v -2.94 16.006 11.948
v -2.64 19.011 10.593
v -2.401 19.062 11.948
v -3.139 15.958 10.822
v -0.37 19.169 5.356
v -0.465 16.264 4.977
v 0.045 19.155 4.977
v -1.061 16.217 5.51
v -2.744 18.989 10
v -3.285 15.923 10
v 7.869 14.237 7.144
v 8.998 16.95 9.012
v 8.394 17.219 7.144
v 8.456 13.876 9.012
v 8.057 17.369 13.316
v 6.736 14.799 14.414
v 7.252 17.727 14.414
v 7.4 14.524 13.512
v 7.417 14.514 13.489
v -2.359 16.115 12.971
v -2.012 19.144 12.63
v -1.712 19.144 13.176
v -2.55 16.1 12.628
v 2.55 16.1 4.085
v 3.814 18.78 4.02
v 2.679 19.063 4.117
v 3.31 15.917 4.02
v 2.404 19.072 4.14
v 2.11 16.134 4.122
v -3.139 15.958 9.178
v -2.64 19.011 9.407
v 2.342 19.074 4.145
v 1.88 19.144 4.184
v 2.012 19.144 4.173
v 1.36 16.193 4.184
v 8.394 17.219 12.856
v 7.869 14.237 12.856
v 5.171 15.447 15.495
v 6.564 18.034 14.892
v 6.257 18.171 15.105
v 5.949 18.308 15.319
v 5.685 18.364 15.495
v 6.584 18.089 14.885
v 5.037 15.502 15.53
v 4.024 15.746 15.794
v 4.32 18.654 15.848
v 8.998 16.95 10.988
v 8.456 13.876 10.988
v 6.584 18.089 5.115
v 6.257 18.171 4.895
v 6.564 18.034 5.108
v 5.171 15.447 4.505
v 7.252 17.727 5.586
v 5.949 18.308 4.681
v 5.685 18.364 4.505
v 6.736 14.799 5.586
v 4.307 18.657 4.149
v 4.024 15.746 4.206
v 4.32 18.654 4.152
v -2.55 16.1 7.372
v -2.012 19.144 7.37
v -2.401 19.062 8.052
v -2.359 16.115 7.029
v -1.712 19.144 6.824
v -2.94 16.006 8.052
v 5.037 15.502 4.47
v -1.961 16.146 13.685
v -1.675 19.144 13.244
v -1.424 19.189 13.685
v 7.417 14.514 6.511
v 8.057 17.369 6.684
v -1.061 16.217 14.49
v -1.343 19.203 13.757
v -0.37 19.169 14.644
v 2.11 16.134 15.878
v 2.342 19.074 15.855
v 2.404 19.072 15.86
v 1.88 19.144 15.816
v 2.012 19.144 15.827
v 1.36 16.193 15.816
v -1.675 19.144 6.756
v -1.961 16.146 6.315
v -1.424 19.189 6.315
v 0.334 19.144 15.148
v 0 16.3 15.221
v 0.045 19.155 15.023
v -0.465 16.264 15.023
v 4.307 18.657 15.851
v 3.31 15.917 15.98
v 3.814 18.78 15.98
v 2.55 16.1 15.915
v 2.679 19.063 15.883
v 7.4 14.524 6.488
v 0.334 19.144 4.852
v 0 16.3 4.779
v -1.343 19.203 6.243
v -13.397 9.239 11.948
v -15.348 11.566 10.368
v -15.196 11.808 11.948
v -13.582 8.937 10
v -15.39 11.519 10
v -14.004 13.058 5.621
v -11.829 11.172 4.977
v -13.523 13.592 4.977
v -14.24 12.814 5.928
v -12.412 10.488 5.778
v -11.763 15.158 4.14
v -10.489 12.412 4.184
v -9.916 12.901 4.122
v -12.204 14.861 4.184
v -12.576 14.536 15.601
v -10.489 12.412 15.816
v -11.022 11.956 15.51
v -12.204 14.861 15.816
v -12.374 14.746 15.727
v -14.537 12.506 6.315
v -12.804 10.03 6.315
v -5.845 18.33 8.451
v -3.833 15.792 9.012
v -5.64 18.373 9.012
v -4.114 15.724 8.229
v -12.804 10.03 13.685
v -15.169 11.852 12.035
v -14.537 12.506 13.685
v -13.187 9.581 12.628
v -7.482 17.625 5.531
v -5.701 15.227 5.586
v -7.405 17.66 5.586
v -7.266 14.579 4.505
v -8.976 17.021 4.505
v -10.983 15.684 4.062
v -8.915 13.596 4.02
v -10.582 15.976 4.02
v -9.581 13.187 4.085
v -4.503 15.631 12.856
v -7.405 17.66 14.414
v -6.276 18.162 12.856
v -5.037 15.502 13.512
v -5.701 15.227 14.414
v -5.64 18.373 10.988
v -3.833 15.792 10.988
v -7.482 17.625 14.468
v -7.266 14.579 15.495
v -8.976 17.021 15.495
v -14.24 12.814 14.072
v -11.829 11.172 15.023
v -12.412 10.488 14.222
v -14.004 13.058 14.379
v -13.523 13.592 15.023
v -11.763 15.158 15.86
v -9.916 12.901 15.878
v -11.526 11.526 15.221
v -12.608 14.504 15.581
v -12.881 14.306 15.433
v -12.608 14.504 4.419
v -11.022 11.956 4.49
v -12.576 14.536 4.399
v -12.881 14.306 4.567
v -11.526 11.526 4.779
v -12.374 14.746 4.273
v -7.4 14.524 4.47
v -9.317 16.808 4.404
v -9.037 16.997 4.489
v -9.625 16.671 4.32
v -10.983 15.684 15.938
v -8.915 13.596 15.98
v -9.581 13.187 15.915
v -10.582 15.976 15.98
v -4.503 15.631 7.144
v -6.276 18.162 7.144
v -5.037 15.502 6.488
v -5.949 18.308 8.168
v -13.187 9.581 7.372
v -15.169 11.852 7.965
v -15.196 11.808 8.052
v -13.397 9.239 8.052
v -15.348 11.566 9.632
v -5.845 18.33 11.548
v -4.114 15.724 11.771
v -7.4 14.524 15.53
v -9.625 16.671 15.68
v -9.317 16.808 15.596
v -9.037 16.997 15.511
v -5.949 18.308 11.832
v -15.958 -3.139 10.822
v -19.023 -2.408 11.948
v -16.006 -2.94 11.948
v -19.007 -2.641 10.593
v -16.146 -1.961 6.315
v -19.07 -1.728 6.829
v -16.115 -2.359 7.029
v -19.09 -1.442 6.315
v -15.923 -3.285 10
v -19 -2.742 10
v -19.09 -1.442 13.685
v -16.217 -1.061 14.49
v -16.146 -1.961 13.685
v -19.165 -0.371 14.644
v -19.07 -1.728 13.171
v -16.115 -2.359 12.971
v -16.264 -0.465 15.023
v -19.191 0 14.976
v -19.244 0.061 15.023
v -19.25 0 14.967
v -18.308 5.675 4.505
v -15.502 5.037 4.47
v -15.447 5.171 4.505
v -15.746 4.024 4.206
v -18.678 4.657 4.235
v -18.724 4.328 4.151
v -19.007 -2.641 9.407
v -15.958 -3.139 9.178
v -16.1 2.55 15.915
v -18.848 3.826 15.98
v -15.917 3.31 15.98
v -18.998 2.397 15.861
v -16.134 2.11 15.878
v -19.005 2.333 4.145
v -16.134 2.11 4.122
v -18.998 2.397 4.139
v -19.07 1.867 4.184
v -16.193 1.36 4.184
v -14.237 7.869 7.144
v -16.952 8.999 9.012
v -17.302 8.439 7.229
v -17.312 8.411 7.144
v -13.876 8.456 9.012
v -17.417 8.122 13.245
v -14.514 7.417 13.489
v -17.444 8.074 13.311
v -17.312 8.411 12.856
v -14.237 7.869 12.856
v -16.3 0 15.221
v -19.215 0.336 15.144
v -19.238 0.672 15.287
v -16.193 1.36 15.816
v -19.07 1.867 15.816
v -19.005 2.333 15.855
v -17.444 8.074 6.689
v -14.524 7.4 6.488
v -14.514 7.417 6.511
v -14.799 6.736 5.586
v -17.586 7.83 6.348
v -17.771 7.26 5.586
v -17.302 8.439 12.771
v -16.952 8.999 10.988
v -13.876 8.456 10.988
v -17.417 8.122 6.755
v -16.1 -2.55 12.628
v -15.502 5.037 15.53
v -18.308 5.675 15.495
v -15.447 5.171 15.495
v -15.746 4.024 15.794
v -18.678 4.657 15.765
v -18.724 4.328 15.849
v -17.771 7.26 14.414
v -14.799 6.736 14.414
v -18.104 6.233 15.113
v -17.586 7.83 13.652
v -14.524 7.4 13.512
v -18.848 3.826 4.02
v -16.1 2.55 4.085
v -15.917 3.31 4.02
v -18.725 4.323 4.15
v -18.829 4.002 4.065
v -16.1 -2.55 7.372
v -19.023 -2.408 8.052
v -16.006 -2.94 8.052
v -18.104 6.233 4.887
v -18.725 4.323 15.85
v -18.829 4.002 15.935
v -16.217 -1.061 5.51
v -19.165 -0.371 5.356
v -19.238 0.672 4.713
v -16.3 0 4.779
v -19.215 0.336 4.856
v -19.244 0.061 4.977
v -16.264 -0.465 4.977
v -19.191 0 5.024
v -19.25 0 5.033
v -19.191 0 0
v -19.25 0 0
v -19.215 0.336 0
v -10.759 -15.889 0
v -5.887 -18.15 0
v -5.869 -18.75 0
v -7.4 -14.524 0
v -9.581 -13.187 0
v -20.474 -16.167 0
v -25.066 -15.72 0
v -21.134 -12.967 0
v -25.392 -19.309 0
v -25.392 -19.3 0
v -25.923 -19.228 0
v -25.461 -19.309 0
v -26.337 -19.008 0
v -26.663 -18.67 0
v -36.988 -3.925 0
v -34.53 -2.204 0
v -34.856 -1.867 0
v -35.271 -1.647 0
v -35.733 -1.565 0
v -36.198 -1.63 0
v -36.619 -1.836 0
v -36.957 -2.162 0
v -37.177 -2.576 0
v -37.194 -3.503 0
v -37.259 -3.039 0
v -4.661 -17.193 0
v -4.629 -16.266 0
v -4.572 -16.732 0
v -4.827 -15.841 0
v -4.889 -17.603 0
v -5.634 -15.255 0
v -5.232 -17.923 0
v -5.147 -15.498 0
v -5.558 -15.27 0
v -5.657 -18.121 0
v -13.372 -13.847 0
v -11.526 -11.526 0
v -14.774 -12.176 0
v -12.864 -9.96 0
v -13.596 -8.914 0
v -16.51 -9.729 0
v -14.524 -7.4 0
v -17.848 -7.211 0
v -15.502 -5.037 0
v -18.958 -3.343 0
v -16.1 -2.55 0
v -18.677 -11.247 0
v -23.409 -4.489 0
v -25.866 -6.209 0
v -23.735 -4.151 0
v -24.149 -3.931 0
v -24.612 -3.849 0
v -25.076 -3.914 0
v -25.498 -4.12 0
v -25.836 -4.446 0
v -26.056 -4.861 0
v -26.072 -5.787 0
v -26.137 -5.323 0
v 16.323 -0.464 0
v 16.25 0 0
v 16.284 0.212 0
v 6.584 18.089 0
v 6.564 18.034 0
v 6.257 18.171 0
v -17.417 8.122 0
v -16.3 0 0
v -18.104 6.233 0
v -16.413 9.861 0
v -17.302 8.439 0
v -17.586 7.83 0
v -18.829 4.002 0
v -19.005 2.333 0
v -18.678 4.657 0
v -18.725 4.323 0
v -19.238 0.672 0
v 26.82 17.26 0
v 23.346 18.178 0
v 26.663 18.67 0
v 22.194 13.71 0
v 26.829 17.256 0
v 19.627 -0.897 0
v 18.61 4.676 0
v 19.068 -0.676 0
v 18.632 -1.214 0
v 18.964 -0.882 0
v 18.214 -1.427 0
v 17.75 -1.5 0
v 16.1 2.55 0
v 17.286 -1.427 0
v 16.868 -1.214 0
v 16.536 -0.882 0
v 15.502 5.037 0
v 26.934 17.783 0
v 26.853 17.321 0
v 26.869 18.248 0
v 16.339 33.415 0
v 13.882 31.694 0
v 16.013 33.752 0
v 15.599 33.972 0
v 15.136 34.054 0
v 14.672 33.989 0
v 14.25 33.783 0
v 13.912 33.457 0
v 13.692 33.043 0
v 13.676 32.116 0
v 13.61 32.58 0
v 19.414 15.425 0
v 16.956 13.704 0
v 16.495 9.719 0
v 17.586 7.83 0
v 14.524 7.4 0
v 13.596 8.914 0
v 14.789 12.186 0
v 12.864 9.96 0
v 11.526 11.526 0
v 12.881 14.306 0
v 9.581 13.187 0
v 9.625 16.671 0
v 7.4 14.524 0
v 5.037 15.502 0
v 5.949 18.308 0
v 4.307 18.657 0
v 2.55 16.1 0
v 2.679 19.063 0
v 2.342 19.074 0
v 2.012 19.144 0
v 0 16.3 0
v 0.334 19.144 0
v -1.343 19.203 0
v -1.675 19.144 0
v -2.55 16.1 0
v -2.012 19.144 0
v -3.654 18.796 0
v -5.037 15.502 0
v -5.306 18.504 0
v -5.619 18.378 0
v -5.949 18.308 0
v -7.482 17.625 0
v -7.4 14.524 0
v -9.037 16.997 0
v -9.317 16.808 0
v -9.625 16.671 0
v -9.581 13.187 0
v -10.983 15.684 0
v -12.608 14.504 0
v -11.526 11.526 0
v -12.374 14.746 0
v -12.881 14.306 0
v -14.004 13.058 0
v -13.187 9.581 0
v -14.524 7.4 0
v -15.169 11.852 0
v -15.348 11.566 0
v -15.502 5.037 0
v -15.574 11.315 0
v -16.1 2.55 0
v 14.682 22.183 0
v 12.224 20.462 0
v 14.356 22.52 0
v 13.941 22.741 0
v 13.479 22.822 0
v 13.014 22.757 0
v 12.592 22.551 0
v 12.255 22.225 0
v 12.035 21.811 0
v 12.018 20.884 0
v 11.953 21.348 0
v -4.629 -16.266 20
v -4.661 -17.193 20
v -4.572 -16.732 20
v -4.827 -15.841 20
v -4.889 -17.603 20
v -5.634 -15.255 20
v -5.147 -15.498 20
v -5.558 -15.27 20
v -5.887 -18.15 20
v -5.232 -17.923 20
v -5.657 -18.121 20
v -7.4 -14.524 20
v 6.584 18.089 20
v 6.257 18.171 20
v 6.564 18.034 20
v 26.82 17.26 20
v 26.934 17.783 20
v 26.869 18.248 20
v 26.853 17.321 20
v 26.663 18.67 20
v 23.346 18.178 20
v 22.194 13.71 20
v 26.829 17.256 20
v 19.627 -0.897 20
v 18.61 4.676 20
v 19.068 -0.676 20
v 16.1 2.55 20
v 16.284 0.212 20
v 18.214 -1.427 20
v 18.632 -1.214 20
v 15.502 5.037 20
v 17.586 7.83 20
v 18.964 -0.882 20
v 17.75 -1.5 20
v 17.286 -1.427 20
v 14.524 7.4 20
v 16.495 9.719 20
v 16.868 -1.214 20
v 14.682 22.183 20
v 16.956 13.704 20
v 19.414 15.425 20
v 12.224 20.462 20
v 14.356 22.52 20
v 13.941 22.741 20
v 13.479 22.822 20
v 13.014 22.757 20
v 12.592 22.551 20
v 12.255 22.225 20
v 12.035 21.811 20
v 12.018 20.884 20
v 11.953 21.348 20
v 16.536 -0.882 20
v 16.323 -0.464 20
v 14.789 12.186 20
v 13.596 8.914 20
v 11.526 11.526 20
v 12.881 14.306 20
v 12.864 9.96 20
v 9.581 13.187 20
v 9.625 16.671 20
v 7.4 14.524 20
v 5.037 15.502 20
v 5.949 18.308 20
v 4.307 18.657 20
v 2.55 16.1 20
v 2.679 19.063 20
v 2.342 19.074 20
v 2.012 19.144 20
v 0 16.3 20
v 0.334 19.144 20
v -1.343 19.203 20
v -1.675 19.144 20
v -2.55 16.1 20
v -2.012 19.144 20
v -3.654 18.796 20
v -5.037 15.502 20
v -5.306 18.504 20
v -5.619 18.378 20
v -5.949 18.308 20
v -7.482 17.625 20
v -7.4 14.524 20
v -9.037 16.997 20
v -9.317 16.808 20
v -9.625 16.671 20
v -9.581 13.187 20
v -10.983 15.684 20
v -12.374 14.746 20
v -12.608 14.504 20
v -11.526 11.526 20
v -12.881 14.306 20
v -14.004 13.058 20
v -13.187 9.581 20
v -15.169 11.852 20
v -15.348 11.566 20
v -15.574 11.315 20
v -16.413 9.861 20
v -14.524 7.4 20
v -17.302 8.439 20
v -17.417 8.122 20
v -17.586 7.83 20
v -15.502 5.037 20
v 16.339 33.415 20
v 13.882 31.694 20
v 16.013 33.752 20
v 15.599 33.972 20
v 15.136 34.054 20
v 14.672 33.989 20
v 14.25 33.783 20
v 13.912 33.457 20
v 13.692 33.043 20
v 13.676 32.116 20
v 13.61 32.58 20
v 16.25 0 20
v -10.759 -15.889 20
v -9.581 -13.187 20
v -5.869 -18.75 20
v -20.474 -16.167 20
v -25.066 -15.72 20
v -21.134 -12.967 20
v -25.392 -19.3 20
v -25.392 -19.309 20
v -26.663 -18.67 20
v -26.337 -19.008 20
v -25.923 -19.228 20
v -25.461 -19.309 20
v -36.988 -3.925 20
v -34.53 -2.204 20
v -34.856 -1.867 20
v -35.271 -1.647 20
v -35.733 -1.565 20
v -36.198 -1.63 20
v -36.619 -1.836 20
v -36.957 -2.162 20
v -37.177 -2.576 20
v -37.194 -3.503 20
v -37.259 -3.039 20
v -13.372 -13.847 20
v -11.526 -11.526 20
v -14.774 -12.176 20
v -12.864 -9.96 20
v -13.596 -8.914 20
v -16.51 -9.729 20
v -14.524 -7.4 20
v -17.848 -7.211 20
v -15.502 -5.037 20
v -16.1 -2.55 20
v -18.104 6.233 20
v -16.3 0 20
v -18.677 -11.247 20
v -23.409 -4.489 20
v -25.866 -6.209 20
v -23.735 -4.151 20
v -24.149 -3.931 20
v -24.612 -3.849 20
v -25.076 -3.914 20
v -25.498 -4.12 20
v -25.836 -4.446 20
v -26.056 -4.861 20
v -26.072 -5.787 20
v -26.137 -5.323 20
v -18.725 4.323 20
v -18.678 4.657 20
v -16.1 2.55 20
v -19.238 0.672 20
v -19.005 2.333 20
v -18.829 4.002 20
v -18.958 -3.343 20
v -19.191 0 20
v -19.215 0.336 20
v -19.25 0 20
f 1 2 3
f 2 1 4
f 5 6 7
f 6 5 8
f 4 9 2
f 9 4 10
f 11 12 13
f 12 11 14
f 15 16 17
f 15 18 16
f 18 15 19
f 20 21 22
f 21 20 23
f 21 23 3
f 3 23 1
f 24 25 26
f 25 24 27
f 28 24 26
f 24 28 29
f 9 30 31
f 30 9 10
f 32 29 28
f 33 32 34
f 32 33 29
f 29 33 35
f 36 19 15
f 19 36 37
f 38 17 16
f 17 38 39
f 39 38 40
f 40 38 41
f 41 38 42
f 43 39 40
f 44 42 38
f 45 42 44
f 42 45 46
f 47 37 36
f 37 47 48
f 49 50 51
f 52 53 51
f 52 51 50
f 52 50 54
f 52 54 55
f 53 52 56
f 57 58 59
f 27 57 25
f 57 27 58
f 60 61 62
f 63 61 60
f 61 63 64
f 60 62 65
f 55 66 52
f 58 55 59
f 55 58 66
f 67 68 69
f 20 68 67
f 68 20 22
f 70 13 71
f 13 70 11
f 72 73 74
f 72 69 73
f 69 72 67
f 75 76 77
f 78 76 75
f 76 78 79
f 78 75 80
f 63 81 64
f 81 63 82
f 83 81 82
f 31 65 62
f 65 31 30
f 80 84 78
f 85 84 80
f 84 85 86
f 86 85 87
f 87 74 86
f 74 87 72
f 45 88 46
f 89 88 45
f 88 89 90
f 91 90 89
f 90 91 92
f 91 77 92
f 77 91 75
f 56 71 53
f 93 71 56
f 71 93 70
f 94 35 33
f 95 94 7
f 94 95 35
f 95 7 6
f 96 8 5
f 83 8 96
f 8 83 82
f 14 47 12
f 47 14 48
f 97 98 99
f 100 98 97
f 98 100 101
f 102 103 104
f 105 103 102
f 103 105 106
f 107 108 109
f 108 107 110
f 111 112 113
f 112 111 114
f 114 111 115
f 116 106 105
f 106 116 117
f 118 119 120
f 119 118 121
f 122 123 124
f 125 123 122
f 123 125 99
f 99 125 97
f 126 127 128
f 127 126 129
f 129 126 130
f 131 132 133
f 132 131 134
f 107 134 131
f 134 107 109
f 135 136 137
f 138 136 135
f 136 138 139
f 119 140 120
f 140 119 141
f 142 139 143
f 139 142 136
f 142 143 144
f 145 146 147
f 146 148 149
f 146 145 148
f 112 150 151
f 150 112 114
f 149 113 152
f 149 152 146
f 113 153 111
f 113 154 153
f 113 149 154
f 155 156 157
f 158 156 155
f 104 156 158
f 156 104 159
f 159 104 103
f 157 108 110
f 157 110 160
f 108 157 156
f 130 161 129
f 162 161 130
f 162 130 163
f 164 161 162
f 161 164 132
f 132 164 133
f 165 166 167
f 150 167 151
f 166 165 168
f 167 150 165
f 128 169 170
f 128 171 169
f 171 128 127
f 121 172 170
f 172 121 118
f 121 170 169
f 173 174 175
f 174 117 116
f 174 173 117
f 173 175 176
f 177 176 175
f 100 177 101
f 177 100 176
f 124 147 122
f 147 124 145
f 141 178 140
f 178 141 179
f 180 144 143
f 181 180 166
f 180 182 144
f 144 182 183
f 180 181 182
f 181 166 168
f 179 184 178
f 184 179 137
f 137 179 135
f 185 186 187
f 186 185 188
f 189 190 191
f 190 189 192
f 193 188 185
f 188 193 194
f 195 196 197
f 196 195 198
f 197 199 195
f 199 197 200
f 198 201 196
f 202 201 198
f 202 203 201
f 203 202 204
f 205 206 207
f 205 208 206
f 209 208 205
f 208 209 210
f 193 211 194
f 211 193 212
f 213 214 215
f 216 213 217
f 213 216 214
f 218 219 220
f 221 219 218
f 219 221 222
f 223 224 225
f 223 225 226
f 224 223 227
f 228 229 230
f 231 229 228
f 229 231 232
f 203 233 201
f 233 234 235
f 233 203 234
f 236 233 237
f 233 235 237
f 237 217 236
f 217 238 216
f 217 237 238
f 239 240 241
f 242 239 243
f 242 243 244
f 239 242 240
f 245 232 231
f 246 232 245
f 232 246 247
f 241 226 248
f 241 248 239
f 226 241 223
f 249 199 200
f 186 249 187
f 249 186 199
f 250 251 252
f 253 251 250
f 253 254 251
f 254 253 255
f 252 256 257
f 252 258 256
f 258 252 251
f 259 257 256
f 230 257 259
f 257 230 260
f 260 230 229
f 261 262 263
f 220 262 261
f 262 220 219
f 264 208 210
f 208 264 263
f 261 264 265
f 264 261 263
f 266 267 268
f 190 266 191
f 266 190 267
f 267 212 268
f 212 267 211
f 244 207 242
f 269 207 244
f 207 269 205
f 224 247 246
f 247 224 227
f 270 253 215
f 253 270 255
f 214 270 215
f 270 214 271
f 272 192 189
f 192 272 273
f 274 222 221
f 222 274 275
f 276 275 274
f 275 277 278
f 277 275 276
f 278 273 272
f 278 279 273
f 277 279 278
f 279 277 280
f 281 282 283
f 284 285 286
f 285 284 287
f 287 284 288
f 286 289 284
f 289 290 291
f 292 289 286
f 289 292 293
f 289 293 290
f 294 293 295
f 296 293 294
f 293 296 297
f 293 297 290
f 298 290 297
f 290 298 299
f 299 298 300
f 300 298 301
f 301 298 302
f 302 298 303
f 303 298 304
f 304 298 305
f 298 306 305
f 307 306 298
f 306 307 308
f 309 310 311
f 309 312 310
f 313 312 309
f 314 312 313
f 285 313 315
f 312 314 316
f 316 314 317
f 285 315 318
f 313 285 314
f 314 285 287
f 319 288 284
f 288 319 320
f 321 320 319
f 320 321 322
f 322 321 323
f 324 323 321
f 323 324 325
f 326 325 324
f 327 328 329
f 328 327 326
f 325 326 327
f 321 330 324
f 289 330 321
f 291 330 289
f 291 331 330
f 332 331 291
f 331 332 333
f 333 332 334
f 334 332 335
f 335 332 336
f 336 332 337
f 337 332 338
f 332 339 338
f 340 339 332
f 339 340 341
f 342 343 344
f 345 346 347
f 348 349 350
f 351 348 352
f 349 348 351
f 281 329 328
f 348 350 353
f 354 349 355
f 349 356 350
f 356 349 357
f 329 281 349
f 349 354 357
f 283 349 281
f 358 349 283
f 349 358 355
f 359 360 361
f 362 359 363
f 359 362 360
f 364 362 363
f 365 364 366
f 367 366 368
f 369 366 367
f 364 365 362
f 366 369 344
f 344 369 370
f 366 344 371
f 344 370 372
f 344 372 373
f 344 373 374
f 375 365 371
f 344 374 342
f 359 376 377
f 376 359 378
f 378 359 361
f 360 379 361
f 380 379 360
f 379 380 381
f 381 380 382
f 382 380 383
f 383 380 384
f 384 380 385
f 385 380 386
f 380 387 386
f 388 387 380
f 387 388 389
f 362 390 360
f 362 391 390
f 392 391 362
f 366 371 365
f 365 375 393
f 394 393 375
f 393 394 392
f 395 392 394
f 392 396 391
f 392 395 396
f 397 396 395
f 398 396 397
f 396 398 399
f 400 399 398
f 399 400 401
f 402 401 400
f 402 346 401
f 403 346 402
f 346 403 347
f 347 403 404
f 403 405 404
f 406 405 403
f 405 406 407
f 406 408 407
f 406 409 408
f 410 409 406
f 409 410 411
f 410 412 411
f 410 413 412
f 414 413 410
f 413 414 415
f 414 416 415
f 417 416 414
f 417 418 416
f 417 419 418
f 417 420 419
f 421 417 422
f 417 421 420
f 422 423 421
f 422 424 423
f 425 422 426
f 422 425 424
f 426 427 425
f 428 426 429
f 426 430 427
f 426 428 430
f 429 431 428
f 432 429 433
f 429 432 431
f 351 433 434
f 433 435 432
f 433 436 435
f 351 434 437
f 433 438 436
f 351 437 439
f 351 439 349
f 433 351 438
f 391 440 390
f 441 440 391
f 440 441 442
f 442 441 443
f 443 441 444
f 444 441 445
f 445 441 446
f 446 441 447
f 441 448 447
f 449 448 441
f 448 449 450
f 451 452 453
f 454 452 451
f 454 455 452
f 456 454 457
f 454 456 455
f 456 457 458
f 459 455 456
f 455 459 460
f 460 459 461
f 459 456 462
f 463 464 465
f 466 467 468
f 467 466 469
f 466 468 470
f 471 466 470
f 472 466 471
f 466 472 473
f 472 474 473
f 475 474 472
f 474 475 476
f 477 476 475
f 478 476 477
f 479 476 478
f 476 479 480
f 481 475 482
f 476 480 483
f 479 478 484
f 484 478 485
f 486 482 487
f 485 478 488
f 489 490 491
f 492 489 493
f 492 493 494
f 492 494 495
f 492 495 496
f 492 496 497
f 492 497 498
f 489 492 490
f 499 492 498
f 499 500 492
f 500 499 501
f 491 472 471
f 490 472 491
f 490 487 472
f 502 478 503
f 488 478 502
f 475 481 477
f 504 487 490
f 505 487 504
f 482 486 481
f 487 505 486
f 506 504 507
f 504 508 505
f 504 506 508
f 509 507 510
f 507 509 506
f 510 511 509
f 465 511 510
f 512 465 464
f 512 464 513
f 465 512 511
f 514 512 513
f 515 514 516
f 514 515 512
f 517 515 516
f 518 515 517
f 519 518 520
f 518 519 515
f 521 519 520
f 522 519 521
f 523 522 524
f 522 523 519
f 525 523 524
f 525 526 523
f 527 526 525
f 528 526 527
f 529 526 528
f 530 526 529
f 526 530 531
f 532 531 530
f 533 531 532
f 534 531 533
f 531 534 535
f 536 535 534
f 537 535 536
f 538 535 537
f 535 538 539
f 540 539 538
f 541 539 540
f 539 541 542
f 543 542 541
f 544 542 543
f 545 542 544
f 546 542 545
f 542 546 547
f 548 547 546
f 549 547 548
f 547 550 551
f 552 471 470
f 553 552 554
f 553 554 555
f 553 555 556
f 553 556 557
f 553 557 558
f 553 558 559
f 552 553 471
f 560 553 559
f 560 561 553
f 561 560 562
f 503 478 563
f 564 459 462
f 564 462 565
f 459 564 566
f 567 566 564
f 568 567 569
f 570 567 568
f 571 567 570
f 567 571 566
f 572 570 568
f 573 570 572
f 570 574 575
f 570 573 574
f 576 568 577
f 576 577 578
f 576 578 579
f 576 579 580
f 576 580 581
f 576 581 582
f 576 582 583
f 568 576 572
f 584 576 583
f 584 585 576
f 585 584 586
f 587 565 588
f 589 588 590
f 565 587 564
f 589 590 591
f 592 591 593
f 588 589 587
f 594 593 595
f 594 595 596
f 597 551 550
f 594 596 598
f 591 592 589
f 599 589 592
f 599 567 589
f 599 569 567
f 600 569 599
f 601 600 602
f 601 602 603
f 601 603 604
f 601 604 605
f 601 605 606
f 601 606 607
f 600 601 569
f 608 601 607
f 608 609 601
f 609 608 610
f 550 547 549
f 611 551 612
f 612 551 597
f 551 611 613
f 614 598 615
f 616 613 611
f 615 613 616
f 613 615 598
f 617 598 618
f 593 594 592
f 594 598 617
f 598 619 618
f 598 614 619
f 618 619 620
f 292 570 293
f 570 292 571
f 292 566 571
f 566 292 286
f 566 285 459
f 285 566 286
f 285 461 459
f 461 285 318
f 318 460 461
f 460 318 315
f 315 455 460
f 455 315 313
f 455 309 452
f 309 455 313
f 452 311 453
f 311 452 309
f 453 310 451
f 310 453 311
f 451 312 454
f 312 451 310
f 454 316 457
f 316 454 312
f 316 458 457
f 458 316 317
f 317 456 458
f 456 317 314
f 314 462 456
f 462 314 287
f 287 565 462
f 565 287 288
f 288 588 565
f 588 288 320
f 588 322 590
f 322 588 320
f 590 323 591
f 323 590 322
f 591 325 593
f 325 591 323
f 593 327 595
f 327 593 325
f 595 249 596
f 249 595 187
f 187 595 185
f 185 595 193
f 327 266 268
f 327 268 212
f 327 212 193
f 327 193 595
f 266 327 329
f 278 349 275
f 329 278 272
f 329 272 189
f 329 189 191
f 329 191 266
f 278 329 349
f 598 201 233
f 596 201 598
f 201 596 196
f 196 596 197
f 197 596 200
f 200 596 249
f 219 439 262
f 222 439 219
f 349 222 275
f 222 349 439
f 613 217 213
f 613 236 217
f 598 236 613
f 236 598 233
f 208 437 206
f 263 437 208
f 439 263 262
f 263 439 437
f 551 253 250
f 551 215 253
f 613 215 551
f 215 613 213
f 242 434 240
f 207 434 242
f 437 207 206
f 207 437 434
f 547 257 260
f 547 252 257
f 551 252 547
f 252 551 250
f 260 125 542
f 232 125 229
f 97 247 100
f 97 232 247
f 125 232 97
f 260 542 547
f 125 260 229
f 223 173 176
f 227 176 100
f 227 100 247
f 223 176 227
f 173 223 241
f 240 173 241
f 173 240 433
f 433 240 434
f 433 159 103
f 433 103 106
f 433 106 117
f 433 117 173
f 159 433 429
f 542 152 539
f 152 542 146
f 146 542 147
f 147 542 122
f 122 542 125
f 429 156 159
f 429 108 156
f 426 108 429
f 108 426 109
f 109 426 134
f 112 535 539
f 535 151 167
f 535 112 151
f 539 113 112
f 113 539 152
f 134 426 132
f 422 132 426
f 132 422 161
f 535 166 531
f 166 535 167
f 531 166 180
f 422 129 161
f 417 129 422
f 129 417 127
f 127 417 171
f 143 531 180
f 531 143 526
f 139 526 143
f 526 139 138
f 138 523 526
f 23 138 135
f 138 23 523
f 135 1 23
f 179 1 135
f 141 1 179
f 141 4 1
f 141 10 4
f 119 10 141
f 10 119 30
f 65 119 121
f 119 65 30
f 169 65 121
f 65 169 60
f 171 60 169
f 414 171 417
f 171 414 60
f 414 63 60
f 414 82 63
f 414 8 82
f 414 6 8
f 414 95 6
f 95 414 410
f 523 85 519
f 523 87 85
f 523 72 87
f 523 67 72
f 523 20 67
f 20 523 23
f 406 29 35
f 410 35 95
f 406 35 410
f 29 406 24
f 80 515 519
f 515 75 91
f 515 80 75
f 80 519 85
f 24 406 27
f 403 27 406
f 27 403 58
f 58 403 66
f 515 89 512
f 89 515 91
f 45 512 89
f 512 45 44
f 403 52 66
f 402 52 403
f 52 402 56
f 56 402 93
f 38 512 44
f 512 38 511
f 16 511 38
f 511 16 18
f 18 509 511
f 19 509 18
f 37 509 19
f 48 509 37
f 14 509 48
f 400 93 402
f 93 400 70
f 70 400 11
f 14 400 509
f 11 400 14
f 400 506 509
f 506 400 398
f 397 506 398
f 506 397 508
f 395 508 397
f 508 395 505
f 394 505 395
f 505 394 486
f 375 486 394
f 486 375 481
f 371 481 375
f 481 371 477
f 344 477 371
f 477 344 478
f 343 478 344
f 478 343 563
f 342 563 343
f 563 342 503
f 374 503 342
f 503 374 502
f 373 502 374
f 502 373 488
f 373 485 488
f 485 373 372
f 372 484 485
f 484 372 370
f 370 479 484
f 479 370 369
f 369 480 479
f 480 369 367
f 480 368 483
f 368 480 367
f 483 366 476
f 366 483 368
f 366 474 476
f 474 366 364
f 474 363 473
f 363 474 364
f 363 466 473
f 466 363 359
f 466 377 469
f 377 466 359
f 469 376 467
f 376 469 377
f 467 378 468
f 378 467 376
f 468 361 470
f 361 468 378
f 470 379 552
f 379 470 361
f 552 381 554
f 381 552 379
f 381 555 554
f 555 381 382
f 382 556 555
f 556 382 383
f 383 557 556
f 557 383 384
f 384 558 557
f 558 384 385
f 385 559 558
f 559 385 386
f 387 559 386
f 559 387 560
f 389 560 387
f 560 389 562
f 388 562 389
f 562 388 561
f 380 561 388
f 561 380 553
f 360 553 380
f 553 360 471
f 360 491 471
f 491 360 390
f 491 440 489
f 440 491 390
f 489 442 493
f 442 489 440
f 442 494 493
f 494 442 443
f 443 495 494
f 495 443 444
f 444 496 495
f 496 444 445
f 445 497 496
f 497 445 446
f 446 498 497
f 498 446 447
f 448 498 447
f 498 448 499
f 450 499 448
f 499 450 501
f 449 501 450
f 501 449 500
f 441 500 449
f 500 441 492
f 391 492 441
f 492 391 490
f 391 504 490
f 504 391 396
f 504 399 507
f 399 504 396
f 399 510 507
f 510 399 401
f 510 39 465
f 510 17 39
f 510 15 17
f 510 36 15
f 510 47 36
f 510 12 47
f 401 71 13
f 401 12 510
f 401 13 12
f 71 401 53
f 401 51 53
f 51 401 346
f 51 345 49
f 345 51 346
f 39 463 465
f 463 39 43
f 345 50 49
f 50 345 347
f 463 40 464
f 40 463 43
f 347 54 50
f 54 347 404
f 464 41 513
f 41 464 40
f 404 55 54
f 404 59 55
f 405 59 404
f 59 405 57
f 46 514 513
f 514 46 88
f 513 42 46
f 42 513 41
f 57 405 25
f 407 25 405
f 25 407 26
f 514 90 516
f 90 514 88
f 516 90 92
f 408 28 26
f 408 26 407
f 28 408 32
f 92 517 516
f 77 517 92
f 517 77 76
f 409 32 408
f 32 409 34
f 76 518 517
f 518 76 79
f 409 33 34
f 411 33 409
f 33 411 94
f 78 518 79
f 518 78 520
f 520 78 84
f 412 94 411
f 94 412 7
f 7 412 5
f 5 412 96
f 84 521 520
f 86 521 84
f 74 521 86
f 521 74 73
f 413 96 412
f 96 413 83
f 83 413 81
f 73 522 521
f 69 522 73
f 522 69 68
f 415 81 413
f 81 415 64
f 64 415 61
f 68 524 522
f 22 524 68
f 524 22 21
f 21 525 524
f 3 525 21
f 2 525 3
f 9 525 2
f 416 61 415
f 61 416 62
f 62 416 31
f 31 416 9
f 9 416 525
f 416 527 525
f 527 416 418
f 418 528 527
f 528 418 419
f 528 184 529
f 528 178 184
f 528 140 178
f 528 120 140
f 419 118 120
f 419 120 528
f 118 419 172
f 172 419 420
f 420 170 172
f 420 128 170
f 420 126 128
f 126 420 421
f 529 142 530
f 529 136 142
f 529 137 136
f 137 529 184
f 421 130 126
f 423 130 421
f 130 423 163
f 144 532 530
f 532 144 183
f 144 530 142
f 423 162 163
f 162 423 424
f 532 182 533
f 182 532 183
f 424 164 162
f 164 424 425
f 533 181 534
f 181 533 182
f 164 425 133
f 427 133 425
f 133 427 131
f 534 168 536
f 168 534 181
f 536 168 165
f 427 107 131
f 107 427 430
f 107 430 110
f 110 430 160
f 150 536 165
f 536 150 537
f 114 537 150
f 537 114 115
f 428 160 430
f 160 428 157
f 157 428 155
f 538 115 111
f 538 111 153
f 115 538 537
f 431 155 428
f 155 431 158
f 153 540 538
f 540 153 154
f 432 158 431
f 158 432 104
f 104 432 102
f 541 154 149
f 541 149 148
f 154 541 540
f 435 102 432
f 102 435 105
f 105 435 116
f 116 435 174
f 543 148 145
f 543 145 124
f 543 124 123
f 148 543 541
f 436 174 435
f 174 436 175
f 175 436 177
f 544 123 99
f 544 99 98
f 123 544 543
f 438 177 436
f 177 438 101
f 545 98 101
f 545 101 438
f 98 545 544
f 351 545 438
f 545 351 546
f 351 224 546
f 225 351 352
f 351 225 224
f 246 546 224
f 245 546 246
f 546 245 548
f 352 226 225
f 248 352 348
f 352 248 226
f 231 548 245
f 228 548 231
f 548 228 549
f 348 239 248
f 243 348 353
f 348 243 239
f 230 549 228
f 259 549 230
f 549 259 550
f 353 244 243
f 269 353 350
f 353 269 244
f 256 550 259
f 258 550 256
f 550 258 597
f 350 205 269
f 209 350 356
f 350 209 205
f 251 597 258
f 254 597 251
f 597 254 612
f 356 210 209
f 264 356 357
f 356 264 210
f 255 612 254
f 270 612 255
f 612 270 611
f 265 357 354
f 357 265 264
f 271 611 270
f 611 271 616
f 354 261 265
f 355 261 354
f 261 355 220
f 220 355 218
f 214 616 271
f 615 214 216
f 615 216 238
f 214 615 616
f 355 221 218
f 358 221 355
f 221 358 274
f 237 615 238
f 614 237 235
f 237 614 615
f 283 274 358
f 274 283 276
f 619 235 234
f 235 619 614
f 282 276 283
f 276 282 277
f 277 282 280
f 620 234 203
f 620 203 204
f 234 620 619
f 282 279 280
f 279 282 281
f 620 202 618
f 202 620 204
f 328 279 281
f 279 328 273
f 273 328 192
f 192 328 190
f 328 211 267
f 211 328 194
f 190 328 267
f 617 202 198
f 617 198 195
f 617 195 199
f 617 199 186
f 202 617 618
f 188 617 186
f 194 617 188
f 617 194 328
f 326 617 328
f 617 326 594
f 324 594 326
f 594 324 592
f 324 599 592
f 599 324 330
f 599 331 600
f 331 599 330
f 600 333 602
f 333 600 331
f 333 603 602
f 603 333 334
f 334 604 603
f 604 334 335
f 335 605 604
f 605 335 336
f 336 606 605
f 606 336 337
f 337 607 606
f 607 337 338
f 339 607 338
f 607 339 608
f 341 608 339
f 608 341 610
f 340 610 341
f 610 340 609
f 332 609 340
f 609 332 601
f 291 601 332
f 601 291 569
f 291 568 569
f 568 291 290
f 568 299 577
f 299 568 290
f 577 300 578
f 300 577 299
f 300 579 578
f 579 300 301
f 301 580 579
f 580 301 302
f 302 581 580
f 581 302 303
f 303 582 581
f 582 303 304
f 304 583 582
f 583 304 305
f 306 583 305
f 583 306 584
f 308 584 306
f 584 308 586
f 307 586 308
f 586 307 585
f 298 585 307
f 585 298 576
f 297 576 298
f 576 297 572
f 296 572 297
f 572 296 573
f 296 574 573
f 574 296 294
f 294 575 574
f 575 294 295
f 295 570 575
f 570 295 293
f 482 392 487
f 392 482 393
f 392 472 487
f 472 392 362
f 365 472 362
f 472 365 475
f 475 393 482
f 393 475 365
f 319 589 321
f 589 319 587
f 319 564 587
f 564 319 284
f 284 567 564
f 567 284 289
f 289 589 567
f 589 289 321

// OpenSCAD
bar_thickness = 4.8;
bar_height = 33;
barrel_diameter = 28;
barrel_height = 45.6;
barrel_extra = 11.1;
jaws_0mm = 18.5;
jaws_10mm = 19.3;
jaws_20mm = 21;
down_tube = 32.5/2;
angle_guess = 9;
seat_tube_angle_guess = 30;
top_clearance = 4;

clip_thickness = 3;
clip_angle = 110;

clip_width = 20;

module circle_outer(radius,fn) {
  fudge = 1/cos(180/fn);
  circle(r=radius*fudge,$fn=fn);
}

module half_circle(r) difference() {
  circle(r = r);
  translate([-r, -r]) square([2*r, r]);
}

module arc(r, a = 270) {
    if (a == 180) {
        half_circle(r);
    } else if (a < 180) {
        difference() {
            half_circle(r);
            rotate(-180 + a) translate([-r, -r]) square([2*r, r]);
        }
    } else {
        union() {
            half_circle(r);
            rotate(a - 180) half_circle(r);
        }
    }
}

module clip_shape(a=250) union() {
    difference() {
        arc(down_tube + clip_thickness, a);
        circle_outer(down_tube, 40);
    }
    translate([down_tube + clip_thickness/2, 0]) circle(r = clip_thickness/2, $fn=20);
    rotate(a) translate([down_tube + clip_thickness/2, 0]) circle(r = clip_thickness/2, $fn=20);
}

module holder_shape()
translate([-bar_thickness - top_clearance - 2.5*clip_thickness, 0]) union() {
    square([clip_thickness, bar_height/2 + clip_thickness/2]);
    translate([clip_thickness/2, bar_height/2 + clip_thickness/2]) circle(r=clip_thickness/2, $fn=20);
    translate([clip_thickness/2, 0]) circle(r=clip_thickness/2, $fn=20);
    translate([clip_thickness/2, -clip_thickness/2]) square([bar_thickness + top_clearance+ 2*clip_thickness, clip_thickness]);
    translate([clip_thickness + bar_thickness, -clip_thickness/2]) square([clip_thickness, bar_height/4 + clip_thickness]);
    translate([clip_thickness*1.5 + bar_thickness, bar_height/4 + clip_thickness/2]) circle(r=clip_thickness/2, $fn=20);
}

module full_clip(a=250) {
    clip_shape(a);
    rotate(a/2 - 90) {
        translate([-down_tube, 0]) holder_shape(a);
        translate([down_tube, 0]) mirror() holder_shape(a);
    }
    
    rotate(a/2) translate([0, down_tube + top_clearance + 2*clip_thickness + bar_thickness]) rotate(180 - asin(down_tube / (down_tube + top_clearance + 1.5*clip_thickness + bar_thickness))) translate([-clip_thickness/2, 0]) square([clip_thickness, sin(a/2-90)*(down_tube + top_clearance + 3*clip_thickness + bar_thickness)]);
    
     rotate(a/2 + 180) translate([0, down_tube + top_clearance + 2*clip_thickness + bar_thickness]) rotate(180 + asin(down_tube / (down_tube + top_clearance + 1.5*clip_thickness + bar_thickness))) translate([-clip_thickness/2, 0]) square([clip_thickness, sin(a/2-90)*(down_tube + top_clearance + 3*clip_thickness + bar_thickness)]);
}

difference() {
linear_extrude(clip_width) full_clip(360 - clip_angle);

    for (x = [-1 : 1 : 1]) {
        translate([0, 0, clip_width/2]) rotate([90, 0, 90 + (360-clip_angle)/2 + 45*x] ) cylinder(h = 10 + down_tube, r = 12/2);
    }

}
